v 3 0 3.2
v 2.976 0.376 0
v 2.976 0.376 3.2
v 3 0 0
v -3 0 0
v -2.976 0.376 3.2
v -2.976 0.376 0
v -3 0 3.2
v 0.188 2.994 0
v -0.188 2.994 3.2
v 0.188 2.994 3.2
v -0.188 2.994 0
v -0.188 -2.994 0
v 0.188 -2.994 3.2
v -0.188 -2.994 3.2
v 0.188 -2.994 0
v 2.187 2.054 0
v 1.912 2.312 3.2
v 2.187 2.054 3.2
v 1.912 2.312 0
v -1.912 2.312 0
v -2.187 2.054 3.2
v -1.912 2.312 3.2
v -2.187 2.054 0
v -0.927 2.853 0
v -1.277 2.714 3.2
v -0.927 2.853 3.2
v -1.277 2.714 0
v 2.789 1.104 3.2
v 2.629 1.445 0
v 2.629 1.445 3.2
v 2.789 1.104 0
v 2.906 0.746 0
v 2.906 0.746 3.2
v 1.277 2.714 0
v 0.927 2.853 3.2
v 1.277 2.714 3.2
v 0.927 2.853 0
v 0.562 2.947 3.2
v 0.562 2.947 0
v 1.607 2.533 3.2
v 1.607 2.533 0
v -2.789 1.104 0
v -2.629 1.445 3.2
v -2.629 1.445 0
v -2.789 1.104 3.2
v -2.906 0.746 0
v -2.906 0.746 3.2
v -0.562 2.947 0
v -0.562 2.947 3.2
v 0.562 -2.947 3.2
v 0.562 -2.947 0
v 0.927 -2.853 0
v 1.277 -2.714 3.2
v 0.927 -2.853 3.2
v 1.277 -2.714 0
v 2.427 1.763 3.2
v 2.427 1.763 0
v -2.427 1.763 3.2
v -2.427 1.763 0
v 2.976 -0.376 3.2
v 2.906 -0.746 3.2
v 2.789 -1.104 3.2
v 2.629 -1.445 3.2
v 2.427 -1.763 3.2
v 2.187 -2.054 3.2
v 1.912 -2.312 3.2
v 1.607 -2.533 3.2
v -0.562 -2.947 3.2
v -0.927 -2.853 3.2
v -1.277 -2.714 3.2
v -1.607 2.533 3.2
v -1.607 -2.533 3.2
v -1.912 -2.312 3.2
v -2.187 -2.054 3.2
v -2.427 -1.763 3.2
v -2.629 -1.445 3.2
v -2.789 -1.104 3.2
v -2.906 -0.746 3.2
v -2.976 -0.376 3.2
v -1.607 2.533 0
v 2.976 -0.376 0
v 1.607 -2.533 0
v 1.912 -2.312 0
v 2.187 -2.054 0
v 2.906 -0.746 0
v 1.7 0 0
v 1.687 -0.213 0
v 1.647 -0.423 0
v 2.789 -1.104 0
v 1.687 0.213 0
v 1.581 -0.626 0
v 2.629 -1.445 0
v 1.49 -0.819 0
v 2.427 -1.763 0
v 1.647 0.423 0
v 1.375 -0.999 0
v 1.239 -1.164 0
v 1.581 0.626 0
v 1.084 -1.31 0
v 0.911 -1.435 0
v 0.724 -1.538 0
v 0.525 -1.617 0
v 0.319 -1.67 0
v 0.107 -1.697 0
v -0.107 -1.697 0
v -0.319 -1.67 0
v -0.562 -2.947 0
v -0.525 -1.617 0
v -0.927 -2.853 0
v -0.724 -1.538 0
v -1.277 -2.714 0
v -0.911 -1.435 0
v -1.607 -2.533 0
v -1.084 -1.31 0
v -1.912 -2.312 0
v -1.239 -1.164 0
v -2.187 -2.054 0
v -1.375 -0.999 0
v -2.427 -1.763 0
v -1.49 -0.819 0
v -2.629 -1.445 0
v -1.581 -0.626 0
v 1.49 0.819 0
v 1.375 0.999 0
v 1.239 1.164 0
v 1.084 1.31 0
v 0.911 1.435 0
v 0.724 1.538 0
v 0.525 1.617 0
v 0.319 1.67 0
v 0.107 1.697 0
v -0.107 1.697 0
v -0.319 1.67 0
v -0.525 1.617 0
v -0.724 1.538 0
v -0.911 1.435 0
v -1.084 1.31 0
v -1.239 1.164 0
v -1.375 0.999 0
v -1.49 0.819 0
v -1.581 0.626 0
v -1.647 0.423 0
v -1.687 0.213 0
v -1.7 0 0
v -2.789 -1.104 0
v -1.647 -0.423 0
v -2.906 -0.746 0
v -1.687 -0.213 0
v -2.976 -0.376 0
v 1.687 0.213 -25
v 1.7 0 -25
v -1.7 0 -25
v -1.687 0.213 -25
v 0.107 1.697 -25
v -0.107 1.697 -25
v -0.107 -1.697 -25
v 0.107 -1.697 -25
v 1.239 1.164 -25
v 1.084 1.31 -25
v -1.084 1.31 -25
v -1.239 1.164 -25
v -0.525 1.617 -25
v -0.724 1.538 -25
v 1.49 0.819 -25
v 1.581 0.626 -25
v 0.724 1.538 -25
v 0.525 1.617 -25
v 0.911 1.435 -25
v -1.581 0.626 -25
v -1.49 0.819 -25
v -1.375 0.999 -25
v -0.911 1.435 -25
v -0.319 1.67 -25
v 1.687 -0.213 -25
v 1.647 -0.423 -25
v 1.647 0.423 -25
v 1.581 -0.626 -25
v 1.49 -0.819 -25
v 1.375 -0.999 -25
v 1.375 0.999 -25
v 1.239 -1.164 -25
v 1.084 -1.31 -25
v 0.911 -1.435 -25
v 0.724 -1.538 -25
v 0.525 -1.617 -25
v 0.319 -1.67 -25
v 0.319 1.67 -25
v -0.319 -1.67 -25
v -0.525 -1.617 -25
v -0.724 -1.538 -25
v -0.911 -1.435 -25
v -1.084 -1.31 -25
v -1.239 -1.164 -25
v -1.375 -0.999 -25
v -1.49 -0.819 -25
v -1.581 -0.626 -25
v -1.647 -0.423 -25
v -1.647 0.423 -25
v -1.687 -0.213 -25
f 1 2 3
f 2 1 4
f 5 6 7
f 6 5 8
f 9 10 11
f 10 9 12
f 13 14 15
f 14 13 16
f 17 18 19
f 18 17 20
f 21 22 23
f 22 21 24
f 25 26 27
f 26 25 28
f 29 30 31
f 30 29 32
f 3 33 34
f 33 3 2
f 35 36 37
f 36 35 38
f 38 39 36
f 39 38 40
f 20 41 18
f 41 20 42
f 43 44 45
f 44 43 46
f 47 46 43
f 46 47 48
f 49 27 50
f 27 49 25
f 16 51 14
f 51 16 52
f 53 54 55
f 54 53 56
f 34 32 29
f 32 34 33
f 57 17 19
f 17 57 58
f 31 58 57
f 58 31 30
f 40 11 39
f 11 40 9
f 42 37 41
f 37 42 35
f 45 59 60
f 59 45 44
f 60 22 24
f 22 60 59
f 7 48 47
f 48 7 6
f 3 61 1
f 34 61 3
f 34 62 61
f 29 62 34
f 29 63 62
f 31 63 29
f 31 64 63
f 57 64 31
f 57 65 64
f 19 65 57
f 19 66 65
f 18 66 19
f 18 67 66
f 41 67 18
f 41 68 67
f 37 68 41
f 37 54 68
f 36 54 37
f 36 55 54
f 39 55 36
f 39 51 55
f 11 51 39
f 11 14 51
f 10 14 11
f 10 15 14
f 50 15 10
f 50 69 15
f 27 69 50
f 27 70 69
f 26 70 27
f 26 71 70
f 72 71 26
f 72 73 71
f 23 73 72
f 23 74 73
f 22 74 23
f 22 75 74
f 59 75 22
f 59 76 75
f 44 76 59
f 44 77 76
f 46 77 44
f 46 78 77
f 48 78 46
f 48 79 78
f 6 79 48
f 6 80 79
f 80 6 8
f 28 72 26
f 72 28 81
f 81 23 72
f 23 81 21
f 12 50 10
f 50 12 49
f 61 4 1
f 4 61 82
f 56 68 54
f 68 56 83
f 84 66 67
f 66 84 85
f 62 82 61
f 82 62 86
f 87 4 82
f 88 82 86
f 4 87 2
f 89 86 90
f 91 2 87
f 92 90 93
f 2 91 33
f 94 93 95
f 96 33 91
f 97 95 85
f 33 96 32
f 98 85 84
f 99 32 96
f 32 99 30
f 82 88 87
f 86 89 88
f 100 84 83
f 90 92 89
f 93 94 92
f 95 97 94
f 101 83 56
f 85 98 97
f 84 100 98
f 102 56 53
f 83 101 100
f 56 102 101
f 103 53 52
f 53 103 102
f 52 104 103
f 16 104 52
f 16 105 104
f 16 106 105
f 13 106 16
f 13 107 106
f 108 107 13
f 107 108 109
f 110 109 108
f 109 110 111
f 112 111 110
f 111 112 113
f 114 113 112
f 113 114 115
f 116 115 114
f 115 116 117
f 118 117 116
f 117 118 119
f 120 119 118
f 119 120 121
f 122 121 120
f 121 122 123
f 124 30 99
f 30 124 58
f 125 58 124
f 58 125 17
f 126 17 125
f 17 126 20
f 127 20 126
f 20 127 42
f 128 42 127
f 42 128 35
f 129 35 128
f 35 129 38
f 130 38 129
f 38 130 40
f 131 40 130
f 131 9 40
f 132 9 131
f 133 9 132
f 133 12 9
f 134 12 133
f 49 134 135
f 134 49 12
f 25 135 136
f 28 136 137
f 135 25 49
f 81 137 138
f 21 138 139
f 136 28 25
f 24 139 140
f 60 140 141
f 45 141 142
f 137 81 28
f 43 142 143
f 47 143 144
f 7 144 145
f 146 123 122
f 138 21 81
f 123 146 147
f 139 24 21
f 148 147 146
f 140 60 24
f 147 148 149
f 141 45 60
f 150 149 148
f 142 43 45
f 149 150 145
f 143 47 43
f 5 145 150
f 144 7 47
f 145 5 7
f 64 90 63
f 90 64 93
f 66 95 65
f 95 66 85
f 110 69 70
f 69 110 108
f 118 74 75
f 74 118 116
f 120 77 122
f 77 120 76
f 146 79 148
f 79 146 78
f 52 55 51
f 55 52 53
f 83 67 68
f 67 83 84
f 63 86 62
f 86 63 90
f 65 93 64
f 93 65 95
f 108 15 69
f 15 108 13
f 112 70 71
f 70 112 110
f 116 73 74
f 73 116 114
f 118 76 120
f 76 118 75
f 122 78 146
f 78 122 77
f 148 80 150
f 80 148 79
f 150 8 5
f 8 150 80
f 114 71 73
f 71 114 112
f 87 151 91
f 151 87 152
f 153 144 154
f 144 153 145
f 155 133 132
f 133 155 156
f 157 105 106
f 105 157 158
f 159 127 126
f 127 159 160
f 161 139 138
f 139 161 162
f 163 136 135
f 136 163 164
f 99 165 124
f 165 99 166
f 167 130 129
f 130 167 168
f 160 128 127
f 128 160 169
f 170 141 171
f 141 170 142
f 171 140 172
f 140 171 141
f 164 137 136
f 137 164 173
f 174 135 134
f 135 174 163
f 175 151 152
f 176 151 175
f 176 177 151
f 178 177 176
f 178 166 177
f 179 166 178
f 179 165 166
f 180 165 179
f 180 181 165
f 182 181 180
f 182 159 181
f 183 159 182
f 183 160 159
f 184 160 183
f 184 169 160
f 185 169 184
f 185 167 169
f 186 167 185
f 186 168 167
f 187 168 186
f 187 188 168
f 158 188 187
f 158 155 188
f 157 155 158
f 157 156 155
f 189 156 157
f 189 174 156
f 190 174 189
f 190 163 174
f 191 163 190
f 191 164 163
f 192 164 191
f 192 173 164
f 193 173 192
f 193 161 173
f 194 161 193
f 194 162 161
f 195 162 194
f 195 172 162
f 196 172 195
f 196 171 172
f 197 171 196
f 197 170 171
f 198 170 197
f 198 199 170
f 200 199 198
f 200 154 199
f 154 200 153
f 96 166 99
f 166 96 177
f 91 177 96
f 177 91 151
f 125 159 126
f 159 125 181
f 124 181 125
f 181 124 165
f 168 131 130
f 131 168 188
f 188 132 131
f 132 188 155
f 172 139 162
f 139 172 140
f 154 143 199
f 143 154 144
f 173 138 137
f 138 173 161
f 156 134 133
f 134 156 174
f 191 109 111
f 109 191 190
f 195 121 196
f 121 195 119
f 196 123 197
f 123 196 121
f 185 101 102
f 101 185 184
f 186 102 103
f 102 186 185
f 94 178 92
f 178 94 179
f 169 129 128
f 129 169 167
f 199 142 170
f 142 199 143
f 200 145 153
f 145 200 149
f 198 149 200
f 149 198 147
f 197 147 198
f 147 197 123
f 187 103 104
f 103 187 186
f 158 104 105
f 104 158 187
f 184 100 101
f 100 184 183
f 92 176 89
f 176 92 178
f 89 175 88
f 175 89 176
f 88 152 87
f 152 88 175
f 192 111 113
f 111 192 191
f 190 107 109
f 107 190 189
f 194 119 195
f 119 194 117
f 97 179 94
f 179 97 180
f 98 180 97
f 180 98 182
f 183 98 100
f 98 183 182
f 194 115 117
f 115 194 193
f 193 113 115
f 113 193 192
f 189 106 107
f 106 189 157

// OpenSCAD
$fn = 50;


difference() {
	union() {
		translate(v = [0, 0, 0]) {
			rotate(a = [0, 0, 0]) {
				cylinder(h = 3.2000000000, r = 3.0000000000);
			}
		}
		translate(v = [0, 0, -25]) {
			rotate(a = [0, 0, 0]) {
				cylinder(h = 25, r = 1.7000000000);
			}
		}
	}
	union();
}
